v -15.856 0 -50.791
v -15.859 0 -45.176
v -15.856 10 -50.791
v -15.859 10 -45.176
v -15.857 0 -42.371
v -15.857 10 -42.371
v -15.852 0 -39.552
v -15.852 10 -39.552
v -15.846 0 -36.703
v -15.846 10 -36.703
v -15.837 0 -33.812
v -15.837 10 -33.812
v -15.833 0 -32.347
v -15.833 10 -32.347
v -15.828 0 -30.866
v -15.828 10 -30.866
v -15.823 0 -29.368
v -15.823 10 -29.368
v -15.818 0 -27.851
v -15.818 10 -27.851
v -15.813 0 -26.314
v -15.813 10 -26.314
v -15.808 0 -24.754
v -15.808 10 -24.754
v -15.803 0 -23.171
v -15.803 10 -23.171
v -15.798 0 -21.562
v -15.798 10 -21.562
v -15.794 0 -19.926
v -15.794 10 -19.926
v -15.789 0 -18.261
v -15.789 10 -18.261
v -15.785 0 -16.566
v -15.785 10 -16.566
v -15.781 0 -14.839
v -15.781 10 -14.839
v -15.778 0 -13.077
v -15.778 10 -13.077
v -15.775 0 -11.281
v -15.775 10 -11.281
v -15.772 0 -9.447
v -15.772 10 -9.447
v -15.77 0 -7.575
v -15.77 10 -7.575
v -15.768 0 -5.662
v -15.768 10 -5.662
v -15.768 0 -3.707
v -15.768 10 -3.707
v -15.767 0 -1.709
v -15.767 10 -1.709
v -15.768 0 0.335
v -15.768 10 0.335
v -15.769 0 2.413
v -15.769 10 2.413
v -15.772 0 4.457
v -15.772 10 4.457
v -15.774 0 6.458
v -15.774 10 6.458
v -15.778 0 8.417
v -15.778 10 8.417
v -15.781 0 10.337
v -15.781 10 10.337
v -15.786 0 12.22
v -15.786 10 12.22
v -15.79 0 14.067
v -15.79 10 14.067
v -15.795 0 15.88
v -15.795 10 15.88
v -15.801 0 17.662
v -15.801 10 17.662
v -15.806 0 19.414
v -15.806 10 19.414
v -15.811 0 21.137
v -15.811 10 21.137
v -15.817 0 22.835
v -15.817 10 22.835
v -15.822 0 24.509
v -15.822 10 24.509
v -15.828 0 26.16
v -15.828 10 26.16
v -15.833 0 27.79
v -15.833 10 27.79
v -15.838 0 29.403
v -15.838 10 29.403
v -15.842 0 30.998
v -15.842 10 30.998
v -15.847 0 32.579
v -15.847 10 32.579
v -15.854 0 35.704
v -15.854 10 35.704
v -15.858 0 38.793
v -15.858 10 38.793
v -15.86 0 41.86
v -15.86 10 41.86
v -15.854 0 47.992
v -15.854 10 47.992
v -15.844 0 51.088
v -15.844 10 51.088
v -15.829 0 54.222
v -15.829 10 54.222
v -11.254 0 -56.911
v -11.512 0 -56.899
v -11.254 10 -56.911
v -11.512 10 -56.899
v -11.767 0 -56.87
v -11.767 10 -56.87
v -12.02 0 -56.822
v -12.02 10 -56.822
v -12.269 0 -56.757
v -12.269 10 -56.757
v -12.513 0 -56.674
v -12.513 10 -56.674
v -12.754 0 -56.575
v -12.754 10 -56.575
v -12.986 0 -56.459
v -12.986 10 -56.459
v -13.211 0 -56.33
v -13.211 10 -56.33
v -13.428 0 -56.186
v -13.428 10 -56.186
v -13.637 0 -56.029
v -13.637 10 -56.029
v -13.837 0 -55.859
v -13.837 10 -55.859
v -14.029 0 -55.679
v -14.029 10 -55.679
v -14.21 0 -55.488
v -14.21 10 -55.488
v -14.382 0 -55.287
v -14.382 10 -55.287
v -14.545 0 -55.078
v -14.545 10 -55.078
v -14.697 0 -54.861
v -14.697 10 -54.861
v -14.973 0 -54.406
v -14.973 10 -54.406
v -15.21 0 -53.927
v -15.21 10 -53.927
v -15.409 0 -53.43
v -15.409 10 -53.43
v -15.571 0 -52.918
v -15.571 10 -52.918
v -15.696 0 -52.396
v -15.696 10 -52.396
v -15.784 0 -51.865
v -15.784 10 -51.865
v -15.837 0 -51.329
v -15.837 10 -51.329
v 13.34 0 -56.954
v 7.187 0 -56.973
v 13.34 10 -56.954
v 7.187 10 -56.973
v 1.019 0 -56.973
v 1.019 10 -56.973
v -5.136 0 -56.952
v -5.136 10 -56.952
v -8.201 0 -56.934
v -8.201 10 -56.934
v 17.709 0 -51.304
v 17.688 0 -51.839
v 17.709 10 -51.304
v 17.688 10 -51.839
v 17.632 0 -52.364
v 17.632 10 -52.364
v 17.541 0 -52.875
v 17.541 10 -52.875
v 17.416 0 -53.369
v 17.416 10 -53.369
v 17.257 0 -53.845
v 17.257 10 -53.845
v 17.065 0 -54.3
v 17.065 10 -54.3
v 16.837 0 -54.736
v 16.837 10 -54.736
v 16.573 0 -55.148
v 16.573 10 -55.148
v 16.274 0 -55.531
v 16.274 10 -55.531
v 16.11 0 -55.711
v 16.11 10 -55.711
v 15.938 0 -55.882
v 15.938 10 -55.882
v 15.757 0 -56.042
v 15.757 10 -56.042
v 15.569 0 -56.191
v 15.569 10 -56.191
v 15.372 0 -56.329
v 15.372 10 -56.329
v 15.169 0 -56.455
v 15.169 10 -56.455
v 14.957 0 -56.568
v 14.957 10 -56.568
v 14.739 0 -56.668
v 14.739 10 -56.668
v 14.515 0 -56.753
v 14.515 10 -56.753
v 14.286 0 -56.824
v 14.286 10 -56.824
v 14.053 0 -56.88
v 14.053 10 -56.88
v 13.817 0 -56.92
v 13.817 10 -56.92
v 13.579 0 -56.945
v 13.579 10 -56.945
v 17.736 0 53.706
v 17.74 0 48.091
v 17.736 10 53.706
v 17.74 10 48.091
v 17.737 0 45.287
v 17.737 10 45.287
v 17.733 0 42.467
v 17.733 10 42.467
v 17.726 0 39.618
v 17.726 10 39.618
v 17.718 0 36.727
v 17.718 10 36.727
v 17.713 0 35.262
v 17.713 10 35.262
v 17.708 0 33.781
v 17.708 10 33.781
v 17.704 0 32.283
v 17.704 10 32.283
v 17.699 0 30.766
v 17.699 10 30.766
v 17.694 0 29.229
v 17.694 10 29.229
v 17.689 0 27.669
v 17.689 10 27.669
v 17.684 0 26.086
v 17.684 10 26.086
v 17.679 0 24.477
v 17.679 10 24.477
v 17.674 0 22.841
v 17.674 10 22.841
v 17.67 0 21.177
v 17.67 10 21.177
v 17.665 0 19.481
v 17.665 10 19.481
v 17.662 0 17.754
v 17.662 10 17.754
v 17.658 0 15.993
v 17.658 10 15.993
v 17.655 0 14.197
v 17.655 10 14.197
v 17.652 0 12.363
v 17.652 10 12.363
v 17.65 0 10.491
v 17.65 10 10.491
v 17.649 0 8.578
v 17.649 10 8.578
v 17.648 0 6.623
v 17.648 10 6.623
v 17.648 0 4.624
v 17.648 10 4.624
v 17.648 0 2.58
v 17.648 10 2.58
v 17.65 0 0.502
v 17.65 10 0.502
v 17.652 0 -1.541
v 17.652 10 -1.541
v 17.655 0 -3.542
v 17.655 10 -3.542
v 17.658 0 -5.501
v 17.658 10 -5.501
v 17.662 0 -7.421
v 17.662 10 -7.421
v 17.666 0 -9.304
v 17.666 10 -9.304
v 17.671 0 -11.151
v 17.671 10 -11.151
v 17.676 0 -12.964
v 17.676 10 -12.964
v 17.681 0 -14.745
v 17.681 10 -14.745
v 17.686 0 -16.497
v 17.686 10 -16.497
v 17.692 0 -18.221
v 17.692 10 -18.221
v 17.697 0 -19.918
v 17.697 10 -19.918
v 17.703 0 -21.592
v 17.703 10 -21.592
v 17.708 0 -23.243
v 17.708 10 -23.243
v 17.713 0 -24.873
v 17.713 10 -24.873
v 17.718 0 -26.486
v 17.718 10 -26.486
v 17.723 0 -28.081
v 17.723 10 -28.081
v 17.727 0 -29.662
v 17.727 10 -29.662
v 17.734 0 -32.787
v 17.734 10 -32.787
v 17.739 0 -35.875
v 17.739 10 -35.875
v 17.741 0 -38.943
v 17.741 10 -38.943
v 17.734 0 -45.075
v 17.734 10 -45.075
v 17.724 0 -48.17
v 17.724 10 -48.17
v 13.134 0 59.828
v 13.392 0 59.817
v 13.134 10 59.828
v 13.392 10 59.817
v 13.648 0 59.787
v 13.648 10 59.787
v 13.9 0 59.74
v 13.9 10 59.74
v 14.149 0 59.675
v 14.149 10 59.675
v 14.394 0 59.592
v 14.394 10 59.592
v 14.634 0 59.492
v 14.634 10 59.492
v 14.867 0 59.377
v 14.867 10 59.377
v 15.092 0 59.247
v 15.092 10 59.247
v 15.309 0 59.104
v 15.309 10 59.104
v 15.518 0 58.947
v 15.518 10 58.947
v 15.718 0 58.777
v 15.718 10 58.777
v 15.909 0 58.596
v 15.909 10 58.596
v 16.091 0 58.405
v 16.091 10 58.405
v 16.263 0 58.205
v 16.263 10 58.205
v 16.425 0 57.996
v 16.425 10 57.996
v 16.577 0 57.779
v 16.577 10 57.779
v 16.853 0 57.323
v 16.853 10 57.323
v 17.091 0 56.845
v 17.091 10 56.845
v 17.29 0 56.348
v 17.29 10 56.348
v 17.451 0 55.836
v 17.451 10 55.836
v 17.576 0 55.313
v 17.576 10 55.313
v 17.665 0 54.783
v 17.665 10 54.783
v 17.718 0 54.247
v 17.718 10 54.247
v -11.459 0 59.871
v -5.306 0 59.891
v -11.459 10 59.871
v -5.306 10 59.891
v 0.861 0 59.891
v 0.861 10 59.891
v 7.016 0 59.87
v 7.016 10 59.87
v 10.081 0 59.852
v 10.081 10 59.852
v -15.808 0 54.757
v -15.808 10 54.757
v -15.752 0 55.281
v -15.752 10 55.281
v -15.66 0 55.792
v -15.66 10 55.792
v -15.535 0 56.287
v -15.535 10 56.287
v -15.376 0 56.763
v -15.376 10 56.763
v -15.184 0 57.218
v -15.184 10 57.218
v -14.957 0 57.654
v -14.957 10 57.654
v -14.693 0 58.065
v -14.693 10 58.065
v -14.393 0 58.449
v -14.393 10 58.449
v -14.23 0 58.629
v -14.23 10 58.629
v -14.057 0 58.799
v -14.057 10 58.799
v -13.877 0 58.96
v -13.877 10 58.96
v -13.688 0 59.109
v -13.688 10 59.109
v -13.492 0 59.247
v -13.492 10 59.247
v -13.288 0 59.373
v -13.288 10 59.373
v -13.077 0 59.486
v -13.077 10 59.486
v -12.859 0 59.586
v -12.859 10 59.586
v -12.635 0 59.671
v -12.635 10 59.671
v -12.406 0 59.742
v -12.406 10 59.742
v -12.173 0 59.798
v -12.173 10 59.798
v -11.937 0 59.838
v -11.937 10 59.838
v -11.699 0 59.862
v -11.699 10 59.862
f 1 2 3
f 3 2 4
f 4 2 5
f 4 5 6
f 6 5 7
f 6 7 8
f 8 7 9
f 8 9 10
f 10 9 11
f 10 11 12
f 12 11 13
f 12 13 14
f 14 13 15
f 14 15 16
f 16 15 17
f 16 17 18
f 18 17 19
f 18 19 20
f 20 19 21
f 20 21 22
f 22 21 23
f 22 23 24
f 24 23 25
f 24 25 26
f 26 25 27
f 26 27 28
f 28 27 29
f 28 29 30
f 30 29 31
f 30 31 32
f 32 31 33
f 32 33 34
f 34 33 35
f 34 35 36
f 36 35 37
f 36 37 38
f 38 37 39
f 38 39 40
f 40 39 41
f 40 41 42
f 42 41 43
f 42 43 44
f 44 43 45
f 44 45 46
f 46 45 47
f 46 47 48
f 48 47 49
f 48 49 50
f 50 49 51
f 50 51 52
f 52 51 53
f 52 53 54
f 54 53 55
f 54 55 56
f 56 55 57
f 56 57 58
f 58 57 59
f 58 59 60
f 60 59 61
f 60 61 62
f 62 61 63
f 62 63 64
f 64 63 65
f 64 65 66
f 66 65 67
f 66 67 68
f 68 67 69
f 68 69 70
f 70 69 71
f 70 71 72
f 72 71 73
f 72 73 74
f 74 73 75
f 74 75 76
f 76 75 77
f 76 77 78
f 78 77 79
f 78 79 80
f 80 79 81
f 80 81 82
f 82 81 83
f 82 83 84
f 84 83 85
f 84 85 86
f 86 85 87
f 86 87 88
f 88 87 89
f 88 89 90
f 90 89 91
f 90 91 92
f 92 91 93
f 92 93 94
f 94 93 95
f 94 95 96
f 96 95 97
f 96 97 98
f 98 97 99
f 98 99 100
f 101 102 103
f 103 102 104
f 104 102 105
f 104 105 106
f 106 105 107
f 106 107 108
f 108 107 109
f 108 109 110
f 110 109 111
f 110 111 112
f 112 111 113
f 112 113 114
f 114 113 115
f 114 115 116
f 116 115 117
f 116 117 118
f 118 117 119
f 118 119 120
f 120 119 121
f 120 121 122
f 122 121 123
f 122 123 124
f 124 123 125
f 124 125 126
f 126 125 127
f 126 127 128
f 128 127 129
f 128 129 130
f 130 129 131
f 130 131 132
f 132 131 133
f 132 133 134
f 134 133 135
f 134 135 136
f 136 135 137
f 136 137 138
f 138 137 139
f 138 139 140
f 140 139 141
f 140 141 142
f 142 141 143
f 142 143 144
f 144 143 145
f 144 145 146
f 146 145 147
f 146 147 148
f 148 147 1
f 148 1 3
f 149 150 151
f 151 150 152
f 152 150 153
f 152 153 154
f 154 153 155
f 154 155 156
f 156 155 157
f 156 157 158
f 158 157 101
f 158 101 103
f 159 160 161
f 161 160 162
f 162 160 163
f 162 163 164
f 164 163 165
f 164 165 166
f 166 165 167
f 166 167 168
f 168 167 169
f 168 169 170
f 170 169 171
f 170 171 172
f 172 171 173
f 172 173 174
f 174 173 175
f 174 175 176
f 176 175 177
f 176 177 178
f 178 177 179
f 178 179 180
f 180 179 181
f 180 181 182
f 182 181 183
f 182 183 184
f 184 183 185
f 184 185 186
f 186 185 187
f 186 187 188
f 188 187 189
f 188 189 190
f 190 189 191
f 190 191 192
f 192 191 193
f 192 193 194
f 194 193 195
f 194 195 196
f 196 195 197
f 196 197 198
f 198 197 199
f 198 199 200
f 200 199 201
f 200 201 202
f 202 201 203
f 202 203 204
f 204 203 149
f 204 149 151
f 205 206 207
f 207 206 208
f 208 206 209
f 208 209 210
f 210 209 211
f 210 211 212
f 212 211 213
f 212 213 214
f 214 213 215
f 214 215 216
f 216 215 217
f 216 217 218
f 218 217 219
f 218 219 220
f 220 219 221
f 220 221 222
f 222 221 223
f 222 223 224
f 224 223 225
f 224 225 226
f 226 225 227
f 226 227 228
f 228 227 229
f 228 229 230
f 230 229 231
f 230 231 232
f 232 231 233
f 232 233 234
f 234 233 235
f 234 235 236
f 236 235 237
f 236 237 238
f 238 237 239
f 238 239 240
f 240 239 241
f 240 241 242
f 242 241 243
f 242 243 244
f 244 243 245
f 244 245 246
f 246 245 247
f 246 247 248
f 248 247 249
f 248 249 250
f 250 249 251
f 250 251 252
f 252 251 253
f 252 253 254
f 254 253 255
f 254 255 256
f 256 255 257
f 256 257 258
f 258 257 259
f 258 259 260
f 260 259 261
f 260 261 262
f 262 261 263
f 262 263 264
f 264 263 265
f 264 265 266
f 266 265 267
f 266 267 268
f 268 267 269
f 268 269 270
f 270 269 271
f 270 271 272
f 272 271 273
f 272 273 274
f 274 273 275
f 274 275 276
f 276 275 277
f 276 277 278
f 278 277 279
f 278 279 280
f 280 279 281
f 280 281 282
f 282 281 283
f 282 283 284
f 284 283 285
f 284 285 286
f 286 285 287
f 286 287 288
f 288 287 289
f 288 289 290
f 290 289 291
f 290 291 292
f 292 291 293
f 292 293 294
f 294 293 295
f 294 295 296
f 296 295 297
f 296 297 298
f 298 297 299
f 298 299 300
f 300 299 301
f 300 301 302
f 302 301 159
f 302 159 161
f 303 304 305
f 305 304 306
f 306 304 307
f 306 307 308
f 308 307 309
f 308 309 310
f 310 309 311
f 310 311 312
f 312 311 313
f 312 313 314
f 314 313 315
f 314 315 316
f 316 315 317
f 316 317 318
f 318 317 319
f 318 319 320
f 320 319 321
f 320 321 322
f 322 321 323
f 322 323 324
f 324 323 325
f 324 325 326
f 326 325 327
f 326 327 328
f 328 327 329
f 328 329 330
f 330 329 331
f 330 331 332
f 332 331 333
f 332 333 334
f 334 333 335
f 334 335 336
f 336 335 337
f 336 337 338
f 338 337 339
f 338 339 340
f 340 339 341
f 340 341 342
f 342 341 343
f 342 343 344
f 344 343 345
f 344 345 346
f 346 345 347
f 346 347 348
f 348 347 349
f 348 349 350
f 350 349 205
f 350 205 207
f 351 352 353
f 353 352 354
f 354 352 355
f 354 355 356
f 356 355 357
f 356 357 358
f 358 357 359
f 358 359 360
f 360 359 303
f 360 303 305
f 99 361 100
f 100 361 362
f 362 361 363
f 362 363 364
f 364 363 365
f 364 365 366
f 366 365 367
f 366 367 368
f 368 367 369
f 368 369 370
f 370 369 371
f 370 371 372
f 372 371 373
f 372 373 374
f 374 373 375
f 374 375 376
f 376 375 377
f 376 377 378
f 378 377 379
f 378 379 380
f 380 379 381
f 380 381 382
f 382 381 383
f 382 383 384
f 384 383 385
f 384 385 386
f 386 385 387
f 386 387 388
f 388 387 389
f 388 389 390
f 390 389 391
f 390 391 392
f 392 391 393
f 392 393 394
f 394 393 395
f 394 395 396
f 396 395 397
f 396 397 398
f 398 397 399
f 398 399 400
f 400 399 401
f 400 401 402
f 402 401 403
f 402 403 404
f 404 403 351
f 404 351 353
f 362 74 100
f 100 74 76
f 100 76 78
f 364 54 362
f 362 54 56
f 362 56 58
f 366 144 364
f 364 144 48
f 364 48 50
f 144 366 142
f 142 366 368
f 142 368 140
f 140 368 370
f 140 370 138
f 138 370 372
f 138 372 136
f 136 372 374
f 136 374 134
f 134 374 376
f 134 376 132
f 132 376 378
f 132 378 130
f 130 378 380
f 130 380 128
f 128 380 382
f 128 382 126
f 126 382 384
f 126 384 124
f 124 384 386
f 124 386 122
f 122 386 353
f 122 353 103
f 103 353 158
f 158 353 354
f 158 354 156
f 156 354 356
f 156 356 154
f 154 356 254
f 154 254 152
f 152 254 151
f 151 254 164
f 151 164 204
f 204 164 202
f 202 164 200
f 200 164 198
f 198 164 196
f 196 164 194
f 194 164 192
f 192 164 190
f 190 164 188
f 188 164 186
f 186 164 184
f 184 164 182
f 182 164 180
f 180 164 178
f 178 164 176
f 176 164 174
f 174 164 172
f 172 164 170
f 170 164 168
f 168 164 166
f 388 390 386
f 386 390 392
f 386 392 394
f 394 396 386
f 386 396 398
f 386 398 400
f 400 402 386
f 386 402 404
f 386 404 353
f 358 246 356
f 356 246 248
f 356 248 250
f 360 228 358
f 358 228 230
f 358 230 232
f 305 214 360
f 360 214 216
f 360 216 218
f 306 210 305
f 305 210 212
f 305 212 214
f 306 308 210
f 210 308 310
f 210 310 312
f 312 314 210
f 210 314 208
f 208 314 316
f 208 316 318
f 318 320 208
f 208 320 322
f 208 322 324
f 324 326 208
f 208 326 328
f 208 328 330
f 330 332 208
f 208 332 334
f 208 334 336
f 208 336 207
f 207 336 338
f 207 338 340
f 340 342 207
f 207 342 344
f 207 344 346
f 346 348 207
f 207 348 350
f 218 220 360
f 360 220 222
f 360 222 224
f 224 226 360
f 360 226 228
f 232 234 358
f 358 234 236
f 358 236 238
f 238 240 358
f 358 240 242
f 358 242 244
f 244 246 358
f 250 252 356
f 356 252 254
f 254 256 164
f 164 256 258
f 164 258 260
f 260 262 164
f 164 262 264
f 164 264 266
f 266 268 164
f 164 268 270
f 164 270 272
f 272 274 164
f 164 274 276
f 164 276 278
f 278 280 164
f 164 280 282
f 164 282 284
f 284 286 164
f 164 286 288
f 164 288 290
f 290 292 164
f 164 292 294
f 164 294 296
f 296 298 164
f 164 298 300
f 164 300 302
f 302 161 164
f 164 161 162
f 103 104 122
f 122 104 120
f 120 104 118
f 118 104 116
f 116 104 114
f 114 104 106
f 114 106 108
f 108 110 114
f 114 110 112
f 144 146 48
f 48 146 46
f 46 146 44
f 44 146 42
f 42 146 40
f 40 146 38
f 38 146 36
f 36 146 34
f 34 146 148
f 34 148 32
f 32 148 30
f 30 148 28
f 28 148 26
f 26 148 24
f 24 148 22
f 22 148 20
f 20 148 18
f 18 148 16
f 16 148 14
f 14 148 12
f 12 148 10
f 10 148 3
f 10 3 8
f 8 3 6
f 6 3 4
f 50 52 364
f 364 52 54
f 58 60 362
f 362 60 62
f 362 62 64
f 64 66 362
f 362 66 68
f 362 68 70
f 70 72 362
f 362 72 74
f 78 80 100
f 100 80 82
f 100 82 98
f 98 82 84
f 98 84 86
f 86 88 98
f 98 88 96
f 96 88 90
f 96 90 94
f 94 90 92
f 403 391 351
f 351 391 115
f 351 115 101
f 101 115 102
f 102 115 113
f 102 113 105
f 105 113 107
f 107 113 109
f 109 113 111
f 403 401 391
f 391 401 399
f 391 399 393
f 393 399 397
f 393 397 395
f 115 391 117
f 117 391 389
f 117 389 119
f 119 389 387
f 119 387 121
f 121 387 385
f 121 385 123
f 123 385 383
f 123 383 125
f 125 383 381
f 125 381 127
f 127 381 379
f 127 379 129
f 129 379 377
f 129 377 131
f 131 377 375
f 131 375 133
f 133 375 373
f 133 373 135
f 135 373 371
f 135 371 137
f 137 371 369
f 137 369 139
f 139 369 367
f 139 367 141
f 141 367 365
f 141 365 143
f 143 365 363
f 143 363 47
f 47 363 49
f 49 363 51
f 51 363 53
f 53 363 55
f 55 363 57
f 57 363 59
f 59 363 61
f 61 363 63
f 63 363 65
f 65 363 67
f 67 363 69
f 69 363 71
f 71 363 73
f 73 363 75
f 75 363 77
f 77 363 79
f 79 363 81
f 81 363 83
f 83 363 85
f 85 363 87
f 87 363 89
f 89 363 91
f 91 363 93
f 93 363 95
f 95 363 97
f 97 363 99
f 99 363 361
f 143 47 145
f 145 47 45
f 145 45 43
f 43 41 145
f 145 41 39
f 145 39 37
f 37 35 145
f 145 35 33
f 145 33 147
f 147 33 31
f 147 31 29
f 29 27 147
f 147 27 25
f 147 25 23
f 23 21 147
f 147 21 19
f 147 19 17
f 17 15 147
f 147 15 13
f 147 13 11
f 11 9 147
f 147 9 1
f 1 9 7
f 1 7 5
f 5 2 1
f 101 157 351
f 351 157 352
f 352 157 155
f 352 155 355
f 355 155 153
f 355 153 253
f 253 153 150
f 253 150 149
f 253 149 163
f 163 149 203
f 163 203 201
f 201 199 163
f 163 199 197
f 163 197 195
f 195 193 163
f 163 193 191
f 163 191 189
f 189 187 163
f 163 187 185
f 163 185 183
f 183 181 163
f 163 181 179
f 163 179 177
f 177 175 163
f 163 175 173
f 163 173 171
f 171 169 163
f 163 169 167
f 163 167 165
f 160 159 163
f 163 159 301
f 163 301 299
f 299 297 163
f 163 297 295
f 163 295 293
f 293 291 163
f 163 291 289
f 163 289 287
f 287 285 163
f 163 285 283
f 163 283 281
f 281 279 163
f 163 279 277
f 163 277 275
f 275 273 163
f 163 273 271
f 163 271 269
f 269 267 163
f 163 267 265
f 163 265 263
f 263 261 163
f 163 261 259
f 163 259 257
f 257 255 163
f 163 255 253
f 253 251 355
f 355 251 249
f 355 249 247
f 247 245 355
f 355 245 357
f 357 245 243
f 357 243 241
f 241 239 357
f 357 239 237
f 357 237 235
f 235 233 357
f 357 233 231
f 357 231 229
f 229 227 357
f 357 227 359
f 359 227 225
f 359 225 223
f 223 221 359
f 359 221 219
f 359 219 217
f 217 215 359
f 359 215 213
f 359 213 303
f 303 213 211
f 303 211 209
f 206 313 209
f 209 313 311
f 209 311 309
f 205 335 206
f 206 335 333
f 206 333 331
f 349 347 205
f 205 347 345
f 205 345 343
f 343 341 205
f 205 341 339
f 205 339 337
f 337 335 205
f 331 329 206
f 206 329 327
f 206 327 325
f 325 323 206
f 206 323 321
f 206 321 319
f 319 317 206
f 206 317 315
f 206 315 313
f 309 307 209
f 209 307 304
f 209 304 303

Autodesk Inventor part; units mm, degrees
ref_plane "YZ Plane" through (0, 0, 0) normal (1, 0, 0) x (0, 1, 0)
ref_plane "XZ Plane" through (0, 0, 0) normal (0, 1, 0) x (-1, 0, 0)
ref_plane "XY Plane" through (0, 0, 0) normal (0, 0, 1) x (1, 0, 0)
sketch "Sketch1" plane through (0, 0, 0) normal (0, 1, 0) x (-1, 0, 0)
  spline S0 degree 3 poles (-16.4662, -61.0411) (-16.9768, -61.0411) (-17.4763, -60.9416) (-18.4214, -60.5459) (-18.8475, -60.2567) (-19.6563, -59.4765) (-20.0062, -58.969) (-20.4997, -57.9471) (-20.6653, -57.4443) (-20.8869, -56.4029) (-20.9402, -55.861) (-20.9402, -55.3208) knots 0 0 0 0 0.153185 0.153185 0.307403 0.307403 0.489915 0.489915 0.646626 0.646626 0.807788 0.807788 0.807788 0.807788
  line L0 (14.3601, -61.0411) -> (-16.4662, -61.0411)
  spline S1 degree 3 poles (19.0598, -54.8663) (19.0598, -55.9309) (18.8635, -56.9624) (18.1798, -58.6169) (17.7611, -59.261) (16.8631, -60.1665) (16.4105, -60.4909) (15.6597, -60.8212) (15.4064, -60.9035) (14.8872, -61.0136) (14.6244, -61.0411) (14.3601, -61.0411) knots 0 0 0 0 0.319361 0.319361 0.579654 0.579654 0.780076 0.780076 0.876522 0.876522 0.972216 0.972216 0.972216 0.972216
  line L1 (19.0598, 58.2386) -> (19.0598, -54.8663)
  spline S2 degree 3 poles (14.5859, 63.9589) (15.0965, 63.9589) (15.596, 63.8594) (16.541, 63.4638) (16.9672, 63.1745) (17.7759, 62.3943) (18.1258, 61.8869) (18.6193, 60.8649) (18.785, 60.3621) (19.0065, 59.3207) (19.0598, 58.7789) (19.0598, 58.2386) knots 0 0 0 0 0.153185 0.153185 0.307403 0.307403 0.489915 0.489915 0.646626 0.646626 0.807788 0.807788 0.807788 0.807788
  line L2 (-16.2404, 63.9589) -> (14.5859, 63.9589)
  spline S3 degree 3 poles (-20.9402, 57.7841) (-20.9402, 58.8487) (-20.7438, 59.8802) (-20.0601, 61.5347) (-19.6415, 62.1788) (-18.7435, 63.0843) (-18.2909, 63.4088) (-17.5401, 63.739) (-17.2868, 63.8214) (-16.7675, 63.9314) (-16.5048, 63.9589) (-16.2404, 63.9589) knots 0 0 0 0 0.319361 0.319361 0.579654 0.579654 0.780076 0.780076 0.876522 0.876522 0.972216 0.972216 0.972216 0.972216
  line L3 (-20.9402, -55.3208) -> (-20.9402, 57.7841)
  spline S4 degree 3 poles (-17.909, -51.3054) (-18.0017, -34.7045) (-17.8635, -20.3656) (-17.834, 24.2156) (-17.9641, 38.428) (-17.9361, 53.7088) knots 1.062785 1.062785 1.062785 1.062785 6.428499 6.428499 11.956224 11.956224 11.956224 11.956224
  spline S5 degree 3 poles (-13.1357, 60.0284) (-13.638, 60.0242) (-14.1288, 59.921) (-15.0968, 59.519) (-15.5516, 59.2116) (-16.4426, 58.3701) (-16.8406, 57.8065) (-17.4116, 56.6647) (-17.6077, 56.0952) (-17.8699, 54.9224) (-17.935, 54.3146) (-17.9361, 53.7088) knots 0 0 0 0 0.150687 0.150687 0.314293 0.314293 0.517495 0.517495 0.695221 0.695221 0.875662 0.875662 0.875662 0.875662
  spline S6 degree 3 poles (-13.1357, 60.0284) (-9.1116, 60.0623) (-5.089, 60.0828) (3.0852, 60.098) (7.2738, 60.0919) (11.4603, 60.0714) knots 0.852367 0.852367 0.852367 0.852367 2.058296 2.058296 3.311846 3.311846 3.311846 3.311846
  spline S7 degree 3 poles (16.0287, 54.2232) (16.0231, 55.2304) (15.8339, 56.1998) (15.1963, 57.721) (14.8055, 58.3394) (13.9142, 59.2273) (13.4723, 59.5381) (12.7388, 59.8558) (12.4903, 59.9354) (11.9798, 60.0428) (11.7208, 60.0701) (11.4603, 60.0714) knots 0 0 0 0 0.302161 0.302161 0.537205 0.537205 0.71344 0.71344 0.79894 0.79894 0.88426 0.88426 0.88426 0.88426
  spline S8 degree 3 poles (16.0287, 54.2232) (16.1213, 37.6223) (15.9832, 23.2834) (15.9536, -21.2978) (16.0838, -35.5102) (16.0558, -50.791) knots 1.062785 1.062785 1.062785 1.062785 6.428499 6.428499 11.956224 11.956224 11.956224 11.956224
  spline S9 degree 3 poles (11.2554, -57.1106) (11.7576, -57.1063) (12.2484, -57.0032) (13.2164, -56.6011) (13.6712, -56.2938) (14.5622, -55.4523) (14.9602, -54.8887) (15.5312, -53.7469) (15.7273, -53.1774) (15.9896, -52.0046) (16.0547, -51.3968) (16.0558, -50.791) knots 0 0 0 0 0.150687 0.150687 0.314293 0.314293 0.517495 0.517495 0.695221 0.695221 0.875662 0.875662 0.875662 0.875662
  spline S10 degree 3 poles (11.2554, -57.1106) (7.2313, -57.1445) (3.2086, -57.165) (-4.9655, -57.1802) (-9.1542, -57.174) (-13.3406, -57.1536) knots 0.852367 0.852367 0.852367 0.852367 2.058296 2.058296 3.311846 3.311846 3.311846 3.311846
  spline S11 degree 3 poles (-17.909, -51.3054) (-17.9034, -52.3126) (-17.7143, -53.282) (-17.0766, -54.8032) (-16.6858, -55.4216) (-15.7945, -56.3094) (-15.3527, -56.6202) (-14.6192, -56.938) (-14.3706, -57.0176) (-13.8601, -57.1249) (-13.6012, -57.1523) (-13.3406, -57.1536) knots 0 0 0 0 0.302161 0.302161 0.537205 0.537205 0.71344 0.71344 0.79894 0.79894 0.88426 0.88426 0.88426 0.88426
  spline S12 degree 4 poles (15.8558, -50.7906) (15.871, -42.9364) (15.845, -35.0823) (15.7738, -17.2433) (15.7535, 0.5959) (15.7977, 18.9949) (15.869, 37.3938) (15.8769, 45.8081) (15.8287, 54.2221) knots 0 0 0 0 0 0.29917 0.29917 0.679501 0.679501 1 1 1 1 1
  spline S13 degree 5 poles (15.8287, 54.2221) (15.8244, 55.0357) (15.7162, 55.8496) (15.5022, 56.6437) (14.841, 58.1175) (13.6883, 59.2405) (13.0033, 59.664) (12.2284, 59.8677) (11.4593, 59.8714) knots 0 0 0 0 0 0 0.513739 0.513739 0.513739 1 1 1 1 1 1
  spline S14 degree 3 poles (11.4593, 59.8714) (3.2615, 59.9113) (-4.9365, 59.8974) (-13.134, 59.8284) knots 0 0 0 0 1 1 1 1
  spline S15 degree 5 poles (-13.134, 59.8284) (-13.9675, 59.8223) (-14.8062, 59.571) (-15.526, 59.0817) (-16.7178, 57.8452) (-17.4009, 56.2631) (-17.6228, 55.4259) (-17.7348, 54.5665) (-17.7361, 53.7084) knots 0 0 0 0 0 0 0.492985 0.492985 0.492985 1 1 1 1 1 1
  spline S16 degree 4 poles (-17.7361, 53.7084) (-17.7513, 45.8543) (-17.7253, 38.0001) (-17.6542, 20.1611) (-17.6339, 2.322) (-17.6781, -16.0771) (-17.7493, -34.476) (-17.7572, -42.8902) (-17.709, -51.3042) knots 0 0 0 0 0 0.29917 0.29917 0.679501 0.679501 1 1 1 1 1
  spline S17 degree 5 poles (-17.709, -51.3042) (-17.7048, -52.1179) (-17.5966, -52.9318) (-17.3825, -53.7259) (-16.7213, -55.1997) (-15.5686, -56.3226) (-14.8837, -56.7462) (-14.1087, -56.9499) (-13.3396, -56.9536) knots 0 0 0 0 0 0 0.513739 0.513739 0.513739 1 1 1 1 1 1
  spline S18 degree 3 poles (-13.3396, -56.9536) (-5.1419, -56.9935) (3.0561, -56.9795) (11.2537, -56.9106) knots 0 0 0 0 1 1 1 1
  spline S19 degree 5 poles (11.2537, -56.9106) (12.0872, -56.9045) (12.9258, -56.6532) (13.6457, -56.1638) (14.8374, -54.9274) (15.5206, -53.3453) (15.7424, -52.5081) (15.8544, -51.6487) (15.8558, -50.7906) knots 0 0 0 0 0 0 0.492985 0.492985 0.492985 1 1 1 1 1 1
  point P0 (-0.9402, 1.4589)
  dimension "d7" = 0.2
extrude "Extrusion1" add sketch "Sketch1" along normal blind 10 contours S19 S18 S17 S16 S15 S14 S13 S12
properties part number "3DP_PLA_Air_Funnel_Grid"
